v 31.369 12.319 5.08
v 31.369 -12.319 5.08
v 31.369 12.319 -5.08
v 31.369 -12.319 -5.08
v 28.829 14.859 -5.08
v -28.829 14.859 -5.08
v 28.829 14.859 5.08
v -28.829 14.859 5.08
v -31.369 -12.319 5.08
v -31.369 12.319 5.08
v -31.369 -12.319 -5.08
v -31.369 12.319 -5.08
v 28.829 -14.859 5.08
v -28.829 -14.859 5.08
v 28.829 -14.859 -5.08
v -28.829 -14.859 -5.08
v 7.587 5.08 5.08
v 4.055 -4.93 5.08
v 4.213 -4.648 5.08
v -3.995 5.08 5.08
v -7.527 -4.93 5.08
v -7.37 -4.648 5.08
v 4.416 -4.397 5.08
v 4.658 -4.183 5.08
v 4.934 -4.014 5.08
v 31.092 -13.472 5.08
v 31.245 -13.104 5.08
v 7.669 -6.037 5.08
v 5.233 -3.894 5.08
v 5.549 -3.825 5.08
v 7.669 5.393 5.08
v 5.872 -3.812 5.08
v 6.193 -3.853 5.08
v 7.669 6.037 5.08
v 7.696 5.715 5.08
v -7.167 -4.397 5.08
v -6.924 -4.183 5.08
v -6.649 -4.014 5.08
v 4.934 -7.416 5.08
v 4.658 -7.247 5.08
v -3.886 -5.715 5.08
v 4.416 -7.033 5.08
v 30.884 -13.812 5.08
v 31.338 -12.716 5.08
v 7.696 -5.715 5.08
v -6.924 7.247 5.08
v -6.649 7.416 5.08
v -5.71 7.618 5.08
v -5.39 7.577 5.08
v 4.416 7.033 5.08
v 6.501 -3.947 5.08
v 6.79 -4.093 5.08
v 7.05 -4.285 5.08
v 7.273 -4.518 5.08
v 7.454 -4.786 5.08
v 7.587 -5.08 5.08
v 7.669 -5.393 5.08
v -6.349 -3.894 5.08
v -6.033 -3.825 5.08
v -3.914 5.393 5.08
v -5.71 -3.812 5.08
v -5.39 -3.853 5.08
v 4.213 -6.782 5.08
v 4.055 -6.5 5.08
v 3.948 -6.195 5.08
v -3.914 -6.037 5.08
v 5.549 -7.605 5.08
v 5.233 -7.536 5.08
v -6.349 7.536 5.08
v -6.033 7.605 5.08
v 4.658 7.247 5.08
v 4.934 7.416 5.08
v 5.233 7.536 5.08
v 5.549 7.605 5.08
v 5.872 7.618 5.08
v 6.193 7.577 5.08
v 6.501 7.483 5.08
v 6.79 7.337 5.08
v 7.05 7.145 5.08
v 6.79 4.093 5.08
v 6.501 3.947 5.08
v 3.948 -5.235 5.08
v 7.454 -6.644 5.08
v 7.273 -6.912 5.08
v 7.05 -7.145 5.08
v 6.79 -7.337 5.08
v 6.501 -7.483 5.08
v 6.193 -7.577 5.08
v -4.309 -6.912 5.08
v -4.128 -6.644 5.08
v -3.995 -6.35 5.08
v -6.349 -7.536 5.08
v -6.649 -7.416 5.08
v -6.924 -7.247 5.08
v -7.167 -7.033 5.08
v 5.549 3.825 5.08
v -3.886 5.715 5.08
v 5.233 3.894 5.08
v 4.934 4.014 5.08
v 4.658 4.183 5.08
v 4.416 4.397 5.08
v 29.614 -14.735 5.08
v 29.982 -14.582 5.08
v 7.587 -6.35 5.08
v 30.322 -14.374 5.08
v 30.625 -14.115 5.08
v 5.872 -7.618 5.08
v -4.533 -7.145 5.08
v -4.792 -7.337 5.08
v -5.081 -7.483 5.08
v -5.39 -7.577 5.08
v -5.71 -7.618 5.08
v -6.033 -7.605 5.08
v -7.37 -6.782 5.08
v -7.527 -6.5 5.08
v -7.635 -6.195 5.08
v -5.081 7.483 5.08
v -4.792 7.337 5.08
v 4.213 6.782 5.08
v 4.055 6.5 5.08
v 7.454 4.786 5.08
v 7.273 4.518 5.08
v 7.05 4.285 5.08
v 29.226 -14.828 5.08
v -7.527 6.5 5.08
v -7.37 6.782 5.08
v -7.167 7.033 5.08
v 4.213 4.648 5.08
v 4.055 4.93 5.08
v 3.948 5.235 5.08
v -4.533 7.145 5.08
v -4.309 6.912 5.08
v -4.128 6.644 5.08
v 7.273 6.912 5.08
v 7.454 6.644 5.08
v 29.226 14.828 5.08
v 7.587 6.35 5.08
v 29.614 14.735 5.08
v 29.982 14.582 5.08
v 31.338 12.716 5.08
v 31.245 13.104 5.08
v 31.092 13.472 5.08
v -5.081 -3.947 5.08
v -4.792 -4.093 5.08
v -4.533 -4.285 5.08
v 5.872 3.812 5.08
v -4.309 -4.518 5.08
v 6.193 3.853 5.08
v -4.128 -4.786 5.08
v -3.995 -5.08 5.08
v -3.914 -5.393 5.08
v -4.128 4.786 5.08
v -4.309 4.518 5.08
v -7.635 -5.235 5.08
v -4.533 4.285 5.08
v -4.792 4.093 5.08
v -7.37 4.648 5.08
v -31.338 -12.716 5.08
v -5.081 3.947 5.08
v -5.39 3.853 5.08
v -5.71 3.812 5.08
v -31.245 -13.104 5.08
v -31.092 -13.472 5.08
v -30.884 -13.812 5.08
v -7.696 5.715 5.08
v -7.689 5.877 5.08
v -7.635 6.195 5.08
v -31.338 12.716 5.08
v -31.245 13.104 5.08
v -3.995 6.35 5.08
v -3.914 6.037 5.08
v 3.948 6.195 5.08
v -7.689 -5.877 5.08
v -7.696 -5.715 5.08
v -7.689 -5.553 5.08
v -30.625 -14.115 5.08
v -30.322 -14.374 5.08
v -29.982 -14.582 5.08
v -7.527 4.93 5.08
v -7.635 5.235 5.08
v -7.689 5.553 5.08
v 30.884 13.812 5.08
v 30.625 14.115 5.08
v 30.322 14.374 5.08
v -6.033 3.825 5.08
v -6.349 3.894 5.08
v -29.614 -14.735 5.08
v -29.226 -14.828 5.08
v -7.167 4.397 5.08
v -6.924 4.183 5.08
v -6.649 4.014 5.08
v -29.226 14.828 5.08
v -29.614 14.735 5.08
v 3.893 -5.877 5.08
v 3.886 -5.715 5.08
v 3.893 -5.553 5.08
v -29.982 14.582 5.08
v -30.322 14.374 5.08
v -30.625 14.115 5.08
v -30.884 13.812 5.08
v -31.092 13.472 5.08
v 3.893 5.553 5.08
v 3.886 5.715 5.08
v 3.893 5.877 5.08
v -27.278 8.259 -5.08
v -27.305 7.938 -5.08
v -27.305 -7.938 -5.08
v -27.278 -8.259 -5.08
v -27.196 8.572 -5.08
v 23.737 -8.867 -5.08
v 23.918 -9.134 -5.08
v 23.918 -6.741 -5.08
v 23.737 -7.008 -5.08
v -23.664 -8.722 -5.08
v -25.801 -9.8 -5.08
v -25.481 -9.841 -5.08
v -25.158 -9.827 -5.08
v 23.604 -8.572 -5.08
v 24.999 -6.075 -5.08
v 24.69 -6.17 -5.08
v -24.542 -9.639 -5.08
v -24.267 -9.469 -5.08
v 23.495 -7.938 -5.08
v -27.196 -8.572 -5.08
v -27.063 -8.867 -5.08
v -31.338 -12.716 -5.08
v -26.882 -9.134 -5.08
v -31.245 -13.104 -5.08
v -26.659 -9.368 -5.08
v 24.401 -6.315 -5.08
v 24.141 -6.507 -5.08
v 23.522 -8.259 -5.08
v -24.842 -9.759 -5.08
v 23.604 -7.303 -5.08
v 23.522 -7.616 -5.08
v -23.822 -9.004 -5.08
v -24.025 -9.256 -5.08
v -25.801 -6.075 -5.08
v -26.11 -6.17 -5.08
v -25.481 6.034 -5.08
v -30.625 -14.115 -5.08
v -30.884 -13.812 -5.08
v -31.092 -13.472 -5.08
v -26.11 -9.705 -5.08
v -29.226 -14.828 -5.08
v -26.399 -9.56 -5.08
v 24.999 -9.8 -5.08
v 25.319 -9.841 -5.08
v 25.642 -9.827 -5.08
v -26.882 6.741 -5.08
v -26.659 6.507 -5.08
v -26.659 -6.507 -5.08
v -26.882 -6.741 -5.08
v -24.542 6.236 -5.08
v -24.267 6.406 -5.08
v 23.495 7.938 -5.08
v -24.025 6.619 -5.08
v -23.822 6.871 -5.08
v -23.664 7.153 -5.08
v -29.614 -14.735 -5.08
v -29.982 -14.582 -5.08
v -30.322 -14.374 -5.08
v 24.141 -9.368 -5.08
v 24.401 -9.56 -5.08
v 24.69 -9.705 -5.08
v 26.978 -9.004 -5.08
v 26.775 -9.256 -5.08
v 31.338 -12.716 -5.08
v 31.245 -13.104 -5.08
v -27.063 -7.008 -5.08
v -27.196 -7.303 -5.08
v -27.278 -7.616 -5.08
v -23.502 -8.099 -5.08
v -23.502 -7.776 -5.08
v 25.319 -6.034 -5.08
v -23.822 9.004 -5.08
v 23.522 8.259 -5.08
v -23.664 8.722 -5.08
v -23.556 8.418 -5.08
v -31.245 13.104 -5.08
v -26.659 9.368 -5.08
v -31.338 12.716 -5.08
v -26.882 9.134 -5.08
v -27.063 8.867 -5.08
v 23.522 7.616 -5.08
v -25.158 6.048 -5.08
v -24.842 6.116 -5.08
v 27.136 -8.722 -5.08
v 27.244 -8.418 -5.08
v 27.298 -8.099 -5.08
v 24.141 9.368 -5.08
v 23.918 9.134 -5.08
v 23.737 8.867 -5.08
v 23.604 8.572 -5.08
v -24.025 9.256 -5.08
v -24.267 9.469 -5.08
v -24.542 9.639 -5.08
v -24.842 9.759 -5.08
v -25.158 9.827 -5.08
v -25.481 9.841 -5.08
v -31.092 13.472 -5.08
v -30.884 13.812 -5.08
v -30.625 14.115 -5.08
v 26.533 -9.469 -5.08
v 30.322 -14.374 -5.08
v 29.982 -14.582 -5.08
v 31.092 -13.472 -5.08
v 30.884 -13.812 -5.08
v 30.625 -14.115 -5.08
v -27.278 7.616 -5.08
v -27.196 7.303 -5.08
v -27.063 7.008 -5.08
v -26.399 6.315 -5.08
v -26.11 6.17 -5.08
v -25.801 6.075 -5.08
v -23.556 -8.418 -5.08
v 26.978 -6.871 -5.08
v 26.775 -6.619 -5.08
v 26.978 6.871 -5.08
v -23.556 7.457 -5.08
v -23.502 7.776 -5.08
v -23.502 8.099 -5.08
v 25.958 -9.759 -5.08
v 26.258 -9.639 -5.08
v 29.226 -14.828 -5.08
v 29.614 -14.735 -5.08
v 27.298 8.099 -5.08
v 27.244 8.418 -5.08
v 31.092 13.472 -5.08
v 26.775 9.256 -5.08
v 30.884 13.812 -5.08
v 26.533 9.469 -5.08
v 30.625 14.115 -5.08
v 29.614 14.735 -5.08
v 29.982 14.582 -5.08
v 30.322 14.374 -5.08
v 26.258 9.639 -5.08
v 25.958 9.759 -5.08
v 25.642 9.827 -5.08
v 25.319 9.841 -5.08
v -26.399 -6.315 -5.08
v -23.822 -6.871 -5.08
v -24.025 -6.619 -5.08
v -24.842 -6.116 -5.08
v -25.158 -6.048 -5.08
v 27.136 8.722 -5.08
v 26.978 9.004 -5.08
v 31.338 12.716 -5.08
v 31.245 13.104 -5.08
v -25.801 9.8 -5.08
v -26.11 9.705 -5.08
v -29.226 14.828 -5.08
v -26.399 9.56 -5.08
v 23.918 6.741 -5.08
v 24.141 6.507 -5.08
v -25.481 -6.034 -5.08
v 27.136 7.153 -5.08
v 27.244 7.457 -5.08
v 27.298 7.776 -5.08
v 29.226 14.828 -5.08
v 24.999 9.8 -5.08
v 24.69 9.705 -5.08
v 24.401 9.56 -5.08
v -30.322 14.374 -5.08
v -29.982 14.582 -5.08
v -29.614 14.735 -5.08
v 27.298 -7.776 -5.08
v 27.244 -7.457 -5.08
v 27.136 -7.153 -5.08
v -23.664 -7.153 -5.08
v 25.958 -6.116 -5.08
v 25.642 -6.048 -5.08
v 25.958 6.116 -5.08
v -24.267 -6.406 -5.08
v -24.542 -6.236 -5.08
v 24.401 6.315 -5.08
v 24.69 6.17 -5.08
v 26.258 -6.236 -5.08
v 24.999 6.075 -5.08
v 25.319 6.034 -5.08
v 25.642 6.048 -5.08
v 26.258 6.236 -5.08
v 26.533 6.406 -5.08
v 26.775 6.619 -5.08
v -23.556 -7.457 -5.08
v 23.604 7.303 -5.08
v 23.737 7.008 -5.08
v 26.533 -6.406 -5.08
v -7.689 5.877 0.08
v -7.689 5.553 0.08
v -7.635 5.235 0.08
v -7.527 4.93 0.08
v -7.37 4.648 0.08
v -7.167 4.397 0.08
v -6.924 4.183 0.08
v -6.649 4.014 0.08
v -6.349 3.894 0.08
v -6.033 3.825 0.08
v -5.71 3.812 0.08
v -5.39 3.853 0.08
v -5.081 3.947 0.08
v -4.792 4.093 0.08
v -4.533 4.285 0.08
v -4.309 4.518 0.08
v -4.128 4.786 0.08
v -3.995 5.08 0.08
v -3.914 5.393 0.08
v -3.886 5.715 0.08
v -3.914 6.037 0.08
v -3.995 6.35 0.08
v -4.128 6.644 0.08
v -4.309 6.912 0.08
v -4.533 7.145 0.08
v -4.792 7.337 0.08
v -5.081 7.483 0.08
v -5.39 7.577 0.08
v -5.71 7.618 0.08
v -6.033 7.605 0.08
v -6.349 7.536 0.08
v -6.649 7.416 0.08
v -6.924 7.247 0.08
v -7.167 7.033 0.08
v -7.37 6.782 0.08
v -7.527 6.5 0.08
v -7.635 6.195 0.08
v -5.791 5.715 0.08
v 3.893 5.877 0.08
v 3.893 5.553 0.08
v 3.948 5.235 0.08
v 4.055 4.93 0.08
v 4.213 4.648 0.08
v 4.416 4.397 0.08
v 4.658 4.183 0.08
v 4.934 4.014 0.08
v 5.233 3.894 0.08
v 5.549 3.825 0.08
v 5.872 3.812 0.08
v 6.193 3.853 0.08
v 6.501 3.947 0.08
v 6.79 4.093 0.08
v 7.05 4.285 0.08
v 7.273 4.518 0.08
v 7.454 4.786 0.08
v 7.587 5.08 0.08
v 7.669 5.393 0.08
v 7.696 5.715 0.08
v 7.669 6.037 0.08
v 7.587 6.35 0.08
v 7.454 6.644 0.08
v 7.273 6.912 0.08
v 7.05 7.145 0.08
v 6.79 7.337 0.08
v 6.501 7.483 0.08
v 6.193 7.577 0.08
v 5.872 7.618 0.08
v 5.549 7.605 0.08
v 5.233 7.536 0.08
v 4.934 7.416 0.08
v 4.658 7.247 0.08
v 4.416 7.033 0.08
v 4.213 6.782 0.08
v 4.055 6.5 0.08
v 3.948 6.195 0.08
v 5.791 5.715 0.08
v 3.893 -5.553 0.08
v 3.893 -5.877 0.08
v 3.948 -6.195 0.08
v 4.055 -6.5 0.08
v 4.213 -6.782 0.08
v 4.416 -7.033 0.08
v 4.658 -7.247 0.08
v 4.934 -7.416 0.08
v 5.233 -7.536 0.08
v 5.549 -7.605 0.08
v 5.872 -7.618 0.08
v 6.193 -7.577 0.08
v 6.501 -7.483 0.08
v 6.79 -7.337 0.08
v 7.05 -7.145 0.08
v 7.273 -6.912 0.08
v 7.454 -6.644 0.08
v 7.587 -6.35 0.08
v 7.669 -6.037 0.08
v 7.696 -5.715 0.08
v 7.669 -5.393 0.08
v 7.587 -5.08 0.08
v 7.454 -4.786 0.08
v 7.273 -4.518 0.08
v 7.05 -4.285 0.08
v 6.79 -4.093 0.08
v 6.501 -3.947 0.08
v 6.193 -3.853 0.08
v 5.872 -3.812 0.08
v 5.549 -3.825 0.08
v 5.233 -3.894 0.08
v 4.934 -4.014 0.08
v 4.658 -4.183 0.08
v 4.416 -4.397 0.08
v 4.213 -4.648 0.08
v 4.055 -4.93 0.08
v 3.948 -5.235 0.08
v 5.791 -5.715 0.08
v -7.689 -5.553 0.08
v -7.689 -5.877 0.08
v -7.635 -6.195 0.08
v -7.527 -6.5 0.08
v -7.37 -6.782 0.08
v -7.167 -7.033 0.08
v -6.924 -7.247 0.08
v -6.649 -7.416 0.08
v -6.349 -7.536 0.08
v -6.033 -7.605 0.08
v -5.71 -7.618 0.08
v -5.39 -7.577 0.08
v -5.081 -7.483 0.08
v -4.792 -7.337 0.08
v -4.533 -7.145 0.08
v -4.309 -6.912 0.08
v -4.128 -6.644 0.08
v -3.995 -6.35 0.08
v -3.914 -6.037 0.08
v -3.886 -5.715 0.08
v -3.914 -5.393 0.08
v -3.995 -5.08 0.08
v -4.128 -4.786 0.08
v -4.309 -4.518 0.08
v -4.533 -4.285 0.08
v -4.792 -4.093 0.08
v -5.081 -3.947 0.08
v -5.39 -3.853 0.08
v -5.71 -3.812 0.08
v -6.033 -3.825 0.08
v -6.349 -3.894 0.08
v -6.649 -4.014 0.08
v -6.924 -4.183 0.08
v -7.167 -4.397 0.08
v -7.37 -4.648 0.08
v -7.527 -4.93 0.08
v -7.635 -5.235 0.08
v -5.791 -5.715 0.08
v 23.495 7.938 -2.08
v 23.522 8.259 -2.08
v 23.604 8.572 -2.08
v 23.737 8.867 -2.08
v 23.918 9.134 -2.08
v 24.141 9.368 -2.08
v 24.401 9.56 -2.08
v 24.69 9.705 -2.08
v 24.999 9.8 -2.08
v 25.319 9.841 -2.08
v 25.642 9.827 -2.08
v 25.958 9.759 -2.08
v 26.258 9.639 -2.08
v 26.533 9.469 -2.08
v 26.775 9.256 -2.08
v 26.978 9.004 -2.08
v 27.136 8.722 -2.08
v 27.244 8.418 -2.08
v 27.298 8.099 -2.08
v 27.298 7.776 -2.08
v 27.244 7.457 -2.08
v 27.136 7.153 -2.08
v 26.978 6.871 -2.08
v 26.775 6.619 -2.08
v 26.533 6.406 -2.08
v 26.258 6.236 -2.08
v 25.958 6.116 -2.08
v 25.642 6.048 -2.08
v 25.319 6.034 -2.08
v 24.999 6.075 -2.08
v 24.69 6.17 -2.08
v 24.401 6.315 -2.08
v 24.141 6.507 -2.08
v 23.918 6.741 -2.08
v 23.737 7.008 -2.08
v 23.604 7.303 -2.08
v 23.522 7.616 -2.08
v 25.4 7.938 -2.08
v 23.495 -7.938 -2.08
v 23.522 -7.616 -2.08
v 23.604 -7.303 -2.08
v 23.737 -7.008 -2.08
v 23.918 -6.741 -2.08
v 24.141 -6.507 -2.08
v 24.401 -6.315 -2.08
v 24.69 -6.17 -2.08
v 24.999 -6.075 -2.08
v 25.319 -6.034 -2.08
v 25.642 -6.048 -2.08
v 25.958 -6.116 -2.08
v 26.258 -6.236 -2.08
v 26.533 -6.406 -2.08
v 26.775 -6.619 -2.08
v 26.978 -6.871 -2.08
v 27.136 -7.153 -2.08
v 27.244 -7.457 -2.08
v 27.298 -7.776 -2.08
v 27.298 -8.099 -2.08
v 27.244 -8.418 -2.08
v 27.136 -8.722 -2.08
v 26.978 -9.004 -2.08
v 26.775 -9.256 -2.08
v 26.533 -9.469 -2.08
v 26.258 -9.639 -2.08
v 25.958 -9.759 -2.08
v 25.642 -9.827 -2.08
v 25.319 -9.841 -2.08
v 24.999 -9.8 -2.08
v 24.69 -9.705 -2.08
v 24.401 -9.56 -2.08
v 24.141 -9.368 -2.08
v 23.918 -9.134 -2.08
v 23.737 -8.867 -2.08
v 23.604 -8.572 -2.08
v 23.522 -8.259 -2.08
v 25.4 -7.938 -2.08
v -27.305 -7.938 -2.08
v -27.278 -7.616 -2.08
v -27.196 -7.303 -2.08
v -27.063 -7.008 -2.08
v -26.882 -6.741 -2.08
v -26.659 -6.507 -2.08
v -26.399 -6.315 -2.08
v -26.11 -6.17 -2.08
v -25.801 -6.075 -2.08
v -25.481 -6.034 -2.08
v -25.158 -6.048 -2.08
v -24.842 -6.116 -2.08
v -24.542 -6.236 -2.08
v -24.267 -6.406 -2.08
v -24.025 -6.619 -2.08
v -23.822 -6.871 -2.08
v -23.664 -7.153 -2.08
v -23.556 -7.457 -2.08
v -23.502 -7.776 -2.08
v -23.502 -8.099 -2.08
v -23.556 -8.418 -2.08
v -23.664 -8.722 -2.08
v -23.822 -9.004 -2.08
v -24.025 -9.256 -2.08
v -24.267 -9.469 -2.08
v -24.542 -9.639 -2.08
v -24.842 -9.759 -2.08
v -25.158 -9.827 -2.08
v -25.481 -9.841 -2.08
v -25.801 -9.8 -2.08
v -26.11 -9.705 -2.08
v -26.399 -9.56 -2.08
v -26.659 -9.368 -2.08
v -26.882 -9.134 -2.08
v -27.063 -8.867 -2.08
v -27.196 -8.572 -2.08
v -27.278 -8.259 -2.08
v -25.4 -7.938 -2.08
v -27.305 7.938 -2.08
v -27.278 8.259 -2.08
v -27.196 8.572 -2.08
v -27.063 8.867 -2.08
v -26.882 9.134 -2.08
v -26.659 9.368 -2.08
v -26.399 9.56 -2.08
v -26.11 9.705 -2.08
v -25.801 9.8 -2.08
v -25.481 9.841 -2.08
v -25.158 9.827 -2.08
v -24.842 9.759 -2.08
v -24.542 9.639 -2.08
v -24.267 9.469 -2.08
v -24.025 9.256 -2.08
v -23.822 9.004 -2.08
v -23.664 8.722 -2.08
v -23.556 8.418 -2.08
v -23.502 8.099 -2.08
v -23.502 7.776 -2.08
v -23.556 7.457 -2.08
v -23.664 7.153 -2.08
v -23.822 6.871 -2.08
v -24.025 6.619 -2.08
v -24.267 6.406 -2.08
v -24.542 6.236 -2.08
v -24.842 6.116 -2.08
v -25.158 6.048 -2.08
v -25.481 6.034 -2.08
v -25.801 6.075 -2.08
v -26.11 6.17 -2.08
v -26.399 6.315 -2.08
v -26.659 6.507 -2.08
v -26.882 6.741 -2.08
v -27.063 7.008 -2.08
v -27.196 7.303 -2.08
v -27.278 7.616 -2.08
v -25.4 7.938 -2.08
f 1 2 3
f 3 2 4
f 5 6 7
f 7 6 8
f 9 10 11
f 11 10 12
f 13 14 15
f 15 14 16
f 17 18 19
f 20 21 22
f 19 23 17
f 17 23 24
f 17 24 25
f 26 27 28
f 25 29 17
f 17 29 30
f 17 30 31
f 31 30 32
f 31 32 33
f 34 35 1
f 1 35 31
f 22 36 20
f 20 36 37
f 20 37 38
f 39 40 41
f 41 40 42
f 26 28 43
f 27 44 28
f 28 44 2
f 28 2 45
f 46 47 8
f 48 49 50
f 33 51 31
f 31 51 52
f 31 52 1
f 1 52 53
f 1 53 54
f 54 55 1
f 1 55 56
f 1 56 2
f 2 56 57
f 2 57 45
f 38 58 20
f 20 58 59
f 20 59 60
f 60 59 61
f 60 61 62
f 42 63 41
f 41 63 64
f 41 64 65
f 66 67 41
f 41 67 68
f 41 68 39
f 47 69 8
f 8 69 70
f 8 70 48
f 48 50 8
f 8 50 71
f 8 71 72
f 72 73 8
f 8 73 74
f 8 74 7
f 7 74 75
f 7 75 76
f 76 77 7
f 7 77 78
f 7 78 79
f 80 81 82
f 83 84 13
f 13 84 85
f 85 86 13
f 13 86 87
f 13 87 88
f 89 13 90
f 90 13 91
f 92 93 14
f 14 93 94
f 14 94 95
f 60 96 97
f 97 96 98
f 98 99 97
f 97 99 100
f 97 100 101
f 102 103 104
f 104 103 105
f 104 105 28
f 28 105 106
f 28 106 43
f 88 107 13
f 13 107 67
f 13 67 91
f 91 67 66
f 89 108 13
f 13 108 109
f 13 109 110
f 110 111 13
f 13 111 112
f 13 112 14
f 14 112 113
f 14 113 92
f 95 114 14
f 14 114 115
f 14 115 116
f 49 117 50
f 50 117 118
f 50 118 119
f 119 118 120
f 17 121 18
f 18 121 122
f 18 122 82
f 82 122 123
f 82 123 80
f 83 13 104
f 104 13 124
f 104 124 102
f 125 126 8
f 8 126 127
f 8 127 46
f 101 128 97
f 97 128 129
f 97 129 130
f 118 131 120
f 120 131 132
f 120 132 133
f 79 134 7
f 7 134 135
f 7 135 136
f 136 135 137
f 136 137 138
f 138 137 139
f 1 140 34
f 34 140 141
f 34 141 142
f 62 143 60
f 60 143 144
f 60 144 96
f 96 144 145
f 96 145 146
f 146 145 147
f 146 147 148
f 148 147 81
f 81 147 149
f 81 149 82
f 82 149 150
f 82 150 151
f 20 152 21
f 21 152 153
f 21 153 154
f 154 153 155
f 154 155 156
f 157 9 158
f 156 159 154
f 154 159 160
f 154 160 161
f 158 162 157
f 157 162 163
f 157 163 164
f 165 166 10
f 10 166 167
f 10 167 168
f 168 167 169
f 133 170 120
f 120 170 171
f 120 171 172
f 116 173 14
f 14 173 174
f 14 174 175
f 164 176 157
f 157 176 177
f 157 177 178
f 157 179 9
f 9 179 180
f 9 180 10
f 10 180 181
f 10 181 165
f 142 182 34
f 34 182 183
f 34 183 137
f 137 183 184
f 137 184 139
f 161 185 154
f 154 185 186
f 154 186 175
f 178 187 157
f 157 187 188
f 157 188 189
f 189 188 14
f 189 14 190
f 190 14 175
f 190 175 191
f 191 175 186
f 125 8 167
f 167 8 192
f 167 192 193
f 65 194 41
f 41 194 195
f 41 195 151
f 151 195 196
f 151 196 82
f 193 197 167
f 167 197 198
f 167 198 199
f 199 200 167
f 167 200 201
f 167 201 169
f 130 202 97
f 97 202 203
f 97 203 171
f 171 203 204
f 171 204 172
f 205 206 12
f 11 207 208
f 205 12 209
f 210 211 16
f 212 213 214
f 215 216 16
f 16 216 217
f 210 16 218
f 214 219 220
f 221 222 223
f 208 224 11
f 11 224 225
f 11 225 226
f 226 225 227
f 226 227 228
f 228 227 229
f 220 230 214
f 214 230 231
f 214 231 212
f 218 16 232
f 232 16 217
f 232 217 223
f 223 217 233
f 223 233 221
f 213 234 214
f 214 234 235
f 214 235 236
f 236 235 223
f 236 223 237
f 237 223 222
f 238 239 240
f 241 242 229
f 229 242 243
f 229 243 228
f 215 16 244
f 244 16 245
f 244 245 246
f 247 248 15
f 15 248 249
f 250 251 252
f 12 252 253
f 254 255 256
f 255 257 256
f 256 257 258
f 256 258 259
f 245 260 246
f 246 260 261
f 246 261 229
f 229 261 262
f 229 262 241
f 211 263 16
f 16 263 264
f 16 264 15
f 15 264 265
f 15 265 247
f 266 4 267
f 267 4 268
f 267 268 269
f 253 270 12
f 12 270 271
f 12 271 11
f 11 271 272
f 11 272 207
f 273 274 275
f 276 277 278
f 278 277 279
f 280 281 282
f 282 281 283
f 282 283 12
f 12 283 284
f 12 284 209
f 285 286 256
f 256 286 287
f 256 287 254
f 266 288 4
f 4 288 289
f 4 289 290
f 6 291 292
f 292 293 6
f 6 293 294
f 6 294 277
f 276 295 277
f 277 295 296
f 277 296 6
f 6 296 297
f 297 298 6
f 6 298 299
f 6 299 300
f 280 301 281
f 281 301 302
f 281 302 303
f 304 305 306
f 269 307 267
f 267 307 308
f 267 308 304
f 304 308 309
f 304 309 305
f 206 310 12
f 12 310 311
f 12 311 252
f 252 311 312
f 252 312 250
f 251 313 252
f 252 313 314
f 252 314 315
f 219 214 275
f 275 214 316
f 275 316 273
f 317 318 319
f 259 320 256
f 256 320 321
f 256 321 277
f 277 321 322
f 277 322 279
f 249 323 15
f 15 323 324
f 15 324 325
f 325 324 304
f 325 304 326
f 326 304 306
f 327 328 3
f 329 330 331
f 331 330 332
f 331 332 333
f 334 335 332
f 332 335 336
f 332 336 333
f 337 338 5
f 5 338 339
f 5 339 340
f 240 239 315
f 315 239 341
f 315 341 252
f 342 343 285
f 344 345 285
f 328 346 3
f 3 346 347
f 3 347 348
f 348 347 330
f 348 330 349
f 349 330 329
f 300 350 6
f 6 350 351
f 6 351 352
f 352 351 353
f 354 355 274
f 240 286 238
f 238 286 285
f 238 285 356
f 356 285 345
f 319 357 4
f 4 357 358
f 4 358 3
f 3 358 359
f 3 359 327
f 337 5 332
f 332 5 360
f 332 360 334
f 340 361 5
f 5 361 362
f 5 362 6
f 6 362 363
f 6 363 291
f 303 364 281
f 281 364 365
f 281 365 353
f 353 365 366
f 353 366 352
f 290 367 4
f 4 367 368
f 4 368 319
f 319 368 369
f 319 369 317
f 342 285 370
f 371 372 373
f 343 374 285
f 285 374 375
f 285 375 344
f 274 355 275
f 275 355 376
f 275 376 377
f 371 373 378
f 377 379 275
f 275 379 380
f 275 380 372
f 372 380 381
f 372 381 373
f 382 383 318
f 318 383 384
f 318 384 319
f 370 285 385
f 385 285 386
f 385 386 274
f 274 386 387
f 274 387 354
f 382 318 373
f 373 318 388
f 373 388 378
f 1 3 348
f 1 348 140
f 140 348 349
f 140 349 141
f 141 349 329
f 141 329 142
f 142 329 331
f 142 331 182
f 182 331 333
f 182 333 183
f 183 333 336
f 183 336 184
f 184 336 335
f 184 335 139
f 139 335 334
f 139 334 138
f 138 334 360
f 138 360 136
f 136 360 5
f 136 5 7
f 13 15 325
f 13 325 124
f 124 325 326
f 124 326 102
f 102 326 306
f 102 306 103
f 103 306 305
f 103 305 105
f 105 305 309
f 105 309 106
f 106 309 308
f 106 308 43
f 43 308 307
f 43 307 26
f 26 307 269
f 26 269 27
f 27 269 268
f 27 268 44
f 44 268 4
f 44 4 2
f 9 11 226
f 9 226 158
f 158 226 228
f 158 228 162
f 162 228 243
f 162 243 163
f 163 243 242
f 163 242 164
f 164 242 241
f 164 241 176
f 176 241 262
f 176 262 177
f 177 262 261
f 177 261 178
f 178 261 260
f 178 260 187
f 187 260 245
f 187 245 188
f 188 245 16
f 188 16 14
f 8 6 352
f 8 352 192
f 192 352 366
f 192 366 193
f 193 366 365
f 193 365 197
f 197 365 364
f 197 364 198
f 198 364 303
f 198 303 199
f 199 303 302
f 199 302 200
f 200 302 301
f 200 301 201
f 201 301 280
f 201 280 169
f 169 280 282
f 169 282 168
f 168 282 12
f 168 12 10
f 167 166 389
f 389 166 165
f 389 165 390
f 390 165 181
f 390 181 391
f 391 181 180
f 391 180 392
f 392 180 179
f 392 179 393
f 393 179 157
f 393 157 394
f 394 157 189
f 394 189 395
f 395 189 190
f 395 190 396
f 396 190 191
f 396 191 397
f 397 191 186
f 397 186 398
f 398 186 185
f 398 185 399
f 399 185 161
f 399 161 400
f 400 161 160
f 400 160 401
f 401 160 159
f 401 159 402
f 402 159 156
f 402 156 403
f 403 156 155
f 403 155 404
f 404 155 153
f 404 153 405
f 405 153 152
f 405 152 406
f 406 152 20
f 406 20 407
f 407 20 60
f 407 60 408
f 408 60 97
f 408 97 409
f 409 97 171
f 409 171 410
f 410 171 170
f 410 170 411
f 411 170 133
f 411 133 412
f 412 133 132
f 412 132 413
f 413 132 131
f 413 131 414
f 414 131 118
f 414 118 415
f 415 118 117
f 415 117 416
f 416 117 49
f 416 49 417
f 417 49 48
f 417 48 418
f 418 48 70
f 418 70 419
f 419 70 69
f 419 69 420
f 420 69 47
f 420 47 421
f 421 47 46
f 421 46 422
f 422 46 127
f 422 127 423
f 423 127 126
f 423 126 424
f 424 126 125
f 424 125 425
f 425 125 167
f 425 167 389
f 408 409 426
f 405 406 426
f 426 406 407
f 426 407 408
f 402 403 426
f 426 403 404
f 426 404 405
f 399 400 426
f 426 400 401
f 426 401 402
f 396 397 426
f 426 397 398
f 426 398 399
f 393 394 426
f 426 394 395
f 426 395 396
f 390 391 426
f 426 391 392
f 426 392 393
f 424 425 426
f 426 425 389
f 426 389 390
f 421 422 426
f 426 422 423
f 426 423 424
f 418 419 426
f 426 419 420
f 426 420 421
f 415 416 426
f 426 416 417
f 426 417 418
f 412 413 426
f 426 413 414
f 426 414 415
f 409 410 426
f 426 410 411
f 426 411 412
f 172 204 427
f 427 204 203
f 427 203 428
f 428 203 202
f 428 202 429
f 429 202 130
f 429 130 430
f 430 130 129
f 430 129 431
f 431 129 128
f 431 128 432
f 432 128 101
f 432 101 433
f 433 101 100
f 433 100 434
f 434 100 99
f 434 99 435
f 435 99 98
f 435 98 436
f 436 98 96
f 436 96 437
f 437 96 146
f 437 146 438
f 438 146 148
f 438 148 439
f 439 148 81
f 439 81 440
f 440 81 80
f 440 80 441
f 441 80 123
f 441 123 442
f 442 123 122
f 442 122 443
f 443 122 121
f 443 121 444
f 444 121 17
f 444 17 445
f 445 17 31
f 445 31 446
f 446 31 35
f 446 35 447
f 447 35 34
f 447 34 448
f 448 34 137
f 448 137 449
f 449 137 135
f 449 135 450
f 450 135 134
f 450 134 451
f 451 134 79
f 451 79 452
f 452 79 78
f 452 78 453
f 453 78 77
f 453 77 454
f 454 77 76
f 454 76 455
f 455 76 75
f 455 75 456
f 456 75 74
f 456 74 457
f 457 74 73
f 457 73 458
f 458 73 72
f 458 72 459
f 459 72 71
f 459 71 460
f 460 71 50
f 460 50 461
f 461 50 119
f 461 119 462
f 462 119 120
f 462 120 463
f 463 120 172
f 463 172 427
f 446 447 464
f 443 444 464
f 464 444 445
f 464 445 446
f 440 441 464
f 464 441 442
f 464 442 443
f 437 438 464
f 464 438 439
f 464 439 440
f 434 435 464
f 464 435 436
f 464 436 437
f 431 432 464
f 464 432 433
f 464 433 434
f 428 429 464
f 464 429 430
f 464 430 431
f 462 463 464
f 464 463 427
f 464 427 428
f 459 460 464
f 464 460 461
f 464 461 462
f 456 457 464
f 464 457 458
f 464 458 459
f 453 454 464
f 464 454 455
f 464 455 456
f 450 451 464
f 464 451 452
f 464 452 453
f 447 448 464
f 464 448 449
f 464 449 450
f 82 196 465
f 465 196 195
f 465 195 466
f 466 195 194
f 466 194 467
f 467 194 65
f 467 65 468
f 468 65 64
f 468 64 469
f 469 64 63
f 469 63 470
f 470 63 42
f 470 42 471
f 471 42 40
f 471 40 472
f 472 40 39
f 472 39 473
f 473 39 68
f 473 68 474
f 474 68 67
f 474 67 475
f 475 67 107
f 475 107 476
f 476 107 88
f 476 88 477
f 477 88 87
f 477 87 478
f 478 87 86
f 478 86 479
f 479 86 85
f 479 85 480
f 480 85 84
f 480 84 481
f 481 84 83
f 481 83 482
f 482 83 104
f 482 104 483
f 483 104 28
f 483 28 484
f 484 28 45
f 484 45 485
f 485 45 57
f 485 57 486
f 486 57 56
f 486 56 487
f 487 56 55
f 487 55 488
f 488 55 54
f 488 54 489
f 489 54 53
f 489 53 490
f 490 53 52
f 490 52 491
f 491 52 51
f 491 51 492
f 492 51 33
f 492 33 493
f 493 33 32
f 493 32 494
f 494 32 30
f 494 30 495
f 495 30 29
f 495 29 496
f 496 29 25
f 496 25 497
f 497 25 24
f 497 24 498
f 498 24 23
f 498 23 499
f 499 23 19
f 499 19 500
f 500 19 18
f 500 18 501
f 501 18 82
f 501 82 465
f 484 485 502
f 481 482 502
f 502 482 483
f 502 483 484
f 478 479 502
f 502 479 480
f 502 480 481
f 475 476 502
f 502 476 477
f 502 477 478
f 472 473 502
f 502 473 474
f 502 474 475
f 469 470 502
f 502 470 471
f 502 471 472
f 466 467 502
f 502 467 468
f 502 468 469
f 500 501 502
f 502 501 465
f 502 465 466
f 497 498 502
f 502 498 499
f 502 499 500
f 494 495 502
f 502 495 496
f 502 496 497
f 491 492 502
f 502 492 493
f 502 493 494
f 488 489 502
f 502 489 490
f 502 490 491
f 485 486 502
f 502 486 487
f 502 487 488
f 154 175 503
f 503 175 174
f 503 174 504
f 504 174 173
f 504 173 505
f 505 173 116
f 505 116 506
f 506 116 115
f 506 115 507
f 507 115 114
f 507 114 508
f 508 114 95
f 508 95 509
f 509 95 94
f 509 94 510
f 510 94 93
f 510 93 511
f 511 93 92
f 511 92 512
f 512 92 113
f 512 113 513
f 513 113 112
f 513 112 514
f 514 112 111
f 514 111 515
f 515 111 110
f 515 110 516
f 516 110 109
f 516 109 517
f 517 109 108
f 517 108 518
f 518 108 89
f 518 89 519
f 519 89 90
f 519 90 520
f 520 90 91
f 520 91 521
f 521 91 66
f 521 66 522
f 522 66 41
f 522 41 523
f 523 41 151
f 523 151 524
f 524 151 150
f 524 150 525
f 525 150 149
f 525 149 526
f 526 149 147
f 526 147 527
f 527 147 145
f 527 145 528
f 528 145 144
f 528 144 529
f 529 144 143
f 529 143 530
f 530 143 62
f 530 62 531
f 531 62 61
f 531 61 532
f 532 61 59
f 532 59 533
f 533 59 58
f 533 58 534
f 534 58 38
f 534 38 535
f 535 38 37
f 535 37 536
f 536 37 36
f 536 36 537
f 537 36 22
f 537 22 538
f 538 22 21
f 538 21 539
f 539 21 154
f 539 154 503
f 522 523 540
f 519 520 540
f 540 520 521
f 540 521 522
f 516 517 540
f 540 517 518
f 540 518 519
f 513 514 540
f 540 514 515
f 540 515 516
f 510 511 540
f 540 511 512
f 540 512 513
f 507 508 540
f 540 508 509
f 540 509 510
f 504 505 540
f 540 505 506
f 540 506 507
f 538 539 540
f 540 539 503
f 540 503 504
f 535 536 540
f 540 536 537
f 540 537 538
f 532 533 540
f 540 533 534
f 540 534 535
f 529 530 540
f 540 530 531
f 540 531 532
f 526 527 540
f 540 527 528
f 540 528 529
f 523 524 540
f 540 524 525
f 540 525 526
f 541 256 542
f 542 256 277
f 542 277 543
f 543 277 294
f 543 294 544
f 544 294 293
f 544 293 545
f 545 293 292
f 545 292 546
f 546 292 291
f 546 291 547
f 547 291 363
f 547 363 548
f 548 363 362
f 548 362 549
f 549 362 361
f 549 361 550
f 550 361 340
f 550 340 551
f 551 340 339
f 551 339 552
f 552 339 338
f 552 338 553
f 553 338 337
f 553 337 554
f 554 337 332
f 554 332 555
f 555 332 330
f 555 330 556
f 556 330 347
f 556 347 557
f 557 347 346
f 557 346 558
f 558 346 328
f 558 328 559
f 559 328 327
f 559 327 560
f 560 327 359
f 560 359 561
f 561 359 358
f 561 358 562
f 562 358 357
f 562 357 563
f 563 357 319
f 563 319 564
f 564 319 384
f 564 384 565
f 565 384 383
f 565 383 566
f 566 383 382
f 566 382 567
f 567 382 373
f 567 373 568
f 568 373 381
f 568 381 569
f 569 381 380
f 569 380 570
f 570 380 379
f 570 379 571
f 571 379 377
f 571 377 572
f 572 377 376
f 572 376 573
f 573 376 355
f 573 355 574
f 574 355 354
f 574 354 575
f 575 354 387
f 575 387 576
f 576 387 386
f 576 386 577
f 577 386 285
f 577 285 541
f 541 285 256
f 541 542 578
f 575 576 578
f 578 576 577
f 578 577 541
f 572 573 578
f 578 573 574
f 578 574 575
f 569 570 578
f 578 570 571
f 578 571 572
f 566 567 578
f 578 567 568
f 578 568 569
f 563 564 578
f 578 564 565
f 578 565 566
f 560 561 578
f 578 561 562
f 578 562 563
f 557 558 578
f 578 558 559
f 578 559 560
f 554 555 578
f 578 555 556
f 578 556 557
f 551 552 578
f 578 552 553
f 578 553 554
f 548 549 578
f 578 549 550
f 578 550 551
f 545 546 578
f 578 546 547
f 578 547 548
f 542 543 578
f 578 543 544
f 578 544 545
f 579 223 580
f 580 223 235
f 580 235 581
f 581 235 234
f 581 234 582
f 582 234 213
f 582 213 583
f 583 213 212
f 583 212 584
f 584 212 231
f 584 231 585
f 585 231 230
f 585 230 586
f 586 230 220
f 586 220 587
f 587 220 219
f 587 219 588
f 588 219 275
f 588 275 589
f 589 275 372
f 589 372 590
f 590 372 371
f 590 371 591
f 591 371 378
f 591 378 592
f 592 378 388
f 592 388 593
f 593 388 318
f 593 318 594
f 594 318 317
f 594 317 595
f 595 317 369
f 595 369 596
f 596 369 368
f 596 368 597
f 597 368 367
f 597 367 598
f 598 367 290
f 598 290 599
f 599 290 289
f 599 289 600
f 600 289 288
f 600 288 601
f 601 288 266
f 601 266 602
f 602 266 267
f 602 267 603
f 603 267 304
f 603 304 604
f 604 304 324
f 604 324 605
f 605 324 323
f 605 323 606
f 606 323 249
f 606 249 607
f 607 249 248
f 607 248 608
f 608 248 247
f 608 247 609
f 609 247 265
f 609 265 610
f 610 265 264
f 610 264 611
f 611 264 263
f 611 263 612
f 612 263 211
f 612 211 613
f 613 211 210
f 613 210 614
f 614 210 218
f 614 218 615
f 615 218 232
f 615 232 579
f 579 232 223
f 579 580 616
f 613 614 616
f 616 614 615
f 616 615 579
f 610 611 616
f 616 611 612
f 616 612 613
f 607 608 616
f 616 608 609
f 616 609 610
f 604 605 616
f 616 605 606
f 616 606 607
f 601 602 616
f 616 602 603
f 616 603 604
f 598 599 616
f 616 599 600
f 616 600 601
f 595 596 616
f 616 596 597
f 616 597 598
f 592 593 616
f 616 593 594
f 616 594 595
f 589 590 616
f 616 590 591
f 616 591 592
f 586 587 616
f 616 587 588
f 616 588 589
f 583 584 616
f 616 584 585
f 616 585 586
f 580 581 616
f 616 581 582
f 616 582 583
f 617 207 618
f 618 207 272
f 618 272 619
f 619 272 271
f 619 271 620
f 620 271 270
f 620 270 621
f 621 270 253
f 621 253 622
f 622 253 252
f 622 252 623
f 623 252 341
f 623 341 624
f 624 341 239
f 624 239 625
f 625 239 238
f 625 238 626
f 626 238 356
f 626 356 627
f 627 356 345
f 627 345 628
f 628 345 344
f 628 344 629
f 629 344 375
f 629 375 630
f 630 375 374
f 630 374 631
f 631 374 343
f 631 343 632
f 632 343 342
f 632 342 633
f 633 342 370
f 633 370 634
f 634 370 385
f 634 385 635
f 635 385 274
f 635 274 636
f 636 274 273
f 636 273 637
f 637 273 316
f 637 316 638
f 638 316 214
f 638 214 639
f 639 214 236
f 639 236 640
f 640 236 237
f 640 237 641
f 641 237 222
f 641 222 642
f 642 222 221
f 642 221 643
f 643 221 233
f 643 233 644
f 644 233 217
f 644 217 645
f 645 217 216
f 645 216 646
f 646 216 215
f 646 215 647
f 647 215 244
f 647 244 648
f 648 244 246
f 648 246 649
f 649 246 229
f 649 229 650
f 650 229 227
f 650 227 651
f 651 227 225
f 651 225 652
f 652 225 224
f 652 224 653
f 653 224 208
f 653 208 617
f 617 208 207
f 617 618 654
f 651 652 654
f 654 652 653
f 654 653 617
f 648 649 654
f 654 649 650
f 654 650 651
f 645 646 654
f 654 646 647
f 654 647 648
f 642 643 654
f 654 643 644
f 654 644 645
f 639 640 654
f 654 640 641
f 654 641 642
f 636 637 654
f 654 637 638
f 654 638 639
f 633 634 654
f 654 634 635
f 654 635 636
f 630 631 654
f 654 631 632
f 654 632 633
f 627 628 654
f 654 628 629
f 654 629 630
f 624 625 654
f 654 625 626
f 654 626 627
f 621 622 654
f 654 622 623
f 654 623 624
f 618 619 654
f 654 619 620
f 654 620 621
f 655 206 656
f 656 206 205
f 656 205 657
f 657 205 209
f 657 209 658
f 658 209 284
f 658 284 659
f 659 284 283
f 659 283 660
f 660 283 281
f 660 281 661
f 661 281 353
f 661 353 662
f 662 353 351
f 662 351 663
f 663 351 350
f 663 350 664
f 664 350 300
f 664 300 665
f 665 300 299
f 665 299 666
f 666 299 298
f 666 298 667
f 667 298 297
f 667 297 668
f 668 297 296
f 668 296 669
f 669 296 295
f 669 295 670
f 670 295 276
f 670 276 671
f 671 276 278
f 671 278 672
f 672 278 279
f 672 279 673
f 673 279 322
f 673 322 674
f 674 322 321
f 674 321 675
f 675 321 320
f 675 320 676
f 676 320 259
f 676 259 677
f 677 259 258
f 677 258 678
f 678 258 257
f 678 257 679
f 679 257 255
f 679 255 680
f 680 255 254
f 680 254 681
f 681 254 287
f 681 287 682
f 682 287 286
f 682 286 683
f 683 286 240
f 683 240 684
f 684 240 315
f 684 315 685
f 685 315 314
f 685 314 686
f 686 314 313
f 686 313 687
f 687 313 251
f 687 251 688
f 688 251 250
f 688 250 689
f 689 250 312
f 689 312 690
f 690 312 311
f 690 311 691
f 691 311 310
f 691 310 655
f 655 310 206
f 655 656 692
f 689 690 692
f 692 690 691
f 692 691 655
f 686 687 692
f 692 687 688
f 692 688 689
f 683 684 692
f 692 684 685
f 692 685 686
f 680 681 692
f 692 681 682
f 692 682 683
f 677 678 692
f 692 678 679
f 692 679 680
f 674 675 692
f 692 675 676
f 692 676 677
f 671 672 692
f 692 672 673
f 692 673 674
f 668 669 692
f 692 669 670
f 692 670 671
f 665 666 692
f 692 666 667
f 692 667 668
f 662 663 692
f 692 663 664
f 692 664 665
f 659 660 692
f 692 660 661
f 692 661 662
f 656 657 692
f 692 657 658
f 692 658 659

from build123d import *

# Parameters (mm, degrees)
SKETCH1_W           = 62.738
SKETCH1_H           = 29.718
BOSS_EXTRUDE1_DEPTH = 5.08
FILLET1_R           = 2.54
SKETCH2_R           = 1.905
CUT_EXTRUDE1_DEPTH  = 5
SKETCH3_R           = 1.905
CUT_EXTRUDE2_DEPTH  = 3


with BuildPart() as part:
    # Sketch1 → Boss-Extrude1 (new body, symmetric)
    with BuildSketch(Plane.XY):
        Rectangle(SKETCH1_W, SKETCH1_H)
    extrude(amount=BOSS_EXTRUDE1_DEPTH, both=True)

    # Fillet1
    fillet1_edges = [part.edges().sort_by_distance(p)[0] for p in [
        (31.369, -14.859, 0),
        (-31.369, -14.859, 0),
        (-31.369, 14.859, 0),
        (31.369, 14.859, 0),
    ]]
    fillet(fillet1_edges, radius=FILLET1_R)

    # Sketch2 → Cut-Extrude1 (cut, symmetric)
    with BuildSketch(Plane.XY.offset(5.08)):
        with Locations((-5.7912, 5.715)):
            Circle(SKETCH2_R)
        with Locations((5.7912, 5.715)):
            Circle(SKETCH2_R)
        with Locations((5.7912, -5.715)):
            Circle(SKETCH2_R)
        with Locations((-5.7912, -5.715)):
            Circle(SKETCH2_R)
    extrude(amount=CUT_EXTRUDE1_DEPTH, both=True, mode=Mode.SUBTRACT)

    # Sketch3 → Cut-Extrude2 (cut, symmetric)
    with BuildSketch(Plane(origin=(0, 0, -5.08), x_dir=(-1, 0, 0), z_dir=(0, 0, -1))):
        with Locations((-25.4, 7.9375)):
            Circle(SKETCH3_R)
        with Locations((-25.4, -7.9375)):
            Circle(SKETCH3_R)
        with Locations((25.4, -7.9375)):
            Circle(SKETCH3_R)
        with Locations((25.4, 7.9375)):
            Circle(SKETCH3_R)
    extrude(amount=CUT_EXTRUDE2_DEPTH, both=True, mode=Mode.SUBTRACT)


solid = part.part
